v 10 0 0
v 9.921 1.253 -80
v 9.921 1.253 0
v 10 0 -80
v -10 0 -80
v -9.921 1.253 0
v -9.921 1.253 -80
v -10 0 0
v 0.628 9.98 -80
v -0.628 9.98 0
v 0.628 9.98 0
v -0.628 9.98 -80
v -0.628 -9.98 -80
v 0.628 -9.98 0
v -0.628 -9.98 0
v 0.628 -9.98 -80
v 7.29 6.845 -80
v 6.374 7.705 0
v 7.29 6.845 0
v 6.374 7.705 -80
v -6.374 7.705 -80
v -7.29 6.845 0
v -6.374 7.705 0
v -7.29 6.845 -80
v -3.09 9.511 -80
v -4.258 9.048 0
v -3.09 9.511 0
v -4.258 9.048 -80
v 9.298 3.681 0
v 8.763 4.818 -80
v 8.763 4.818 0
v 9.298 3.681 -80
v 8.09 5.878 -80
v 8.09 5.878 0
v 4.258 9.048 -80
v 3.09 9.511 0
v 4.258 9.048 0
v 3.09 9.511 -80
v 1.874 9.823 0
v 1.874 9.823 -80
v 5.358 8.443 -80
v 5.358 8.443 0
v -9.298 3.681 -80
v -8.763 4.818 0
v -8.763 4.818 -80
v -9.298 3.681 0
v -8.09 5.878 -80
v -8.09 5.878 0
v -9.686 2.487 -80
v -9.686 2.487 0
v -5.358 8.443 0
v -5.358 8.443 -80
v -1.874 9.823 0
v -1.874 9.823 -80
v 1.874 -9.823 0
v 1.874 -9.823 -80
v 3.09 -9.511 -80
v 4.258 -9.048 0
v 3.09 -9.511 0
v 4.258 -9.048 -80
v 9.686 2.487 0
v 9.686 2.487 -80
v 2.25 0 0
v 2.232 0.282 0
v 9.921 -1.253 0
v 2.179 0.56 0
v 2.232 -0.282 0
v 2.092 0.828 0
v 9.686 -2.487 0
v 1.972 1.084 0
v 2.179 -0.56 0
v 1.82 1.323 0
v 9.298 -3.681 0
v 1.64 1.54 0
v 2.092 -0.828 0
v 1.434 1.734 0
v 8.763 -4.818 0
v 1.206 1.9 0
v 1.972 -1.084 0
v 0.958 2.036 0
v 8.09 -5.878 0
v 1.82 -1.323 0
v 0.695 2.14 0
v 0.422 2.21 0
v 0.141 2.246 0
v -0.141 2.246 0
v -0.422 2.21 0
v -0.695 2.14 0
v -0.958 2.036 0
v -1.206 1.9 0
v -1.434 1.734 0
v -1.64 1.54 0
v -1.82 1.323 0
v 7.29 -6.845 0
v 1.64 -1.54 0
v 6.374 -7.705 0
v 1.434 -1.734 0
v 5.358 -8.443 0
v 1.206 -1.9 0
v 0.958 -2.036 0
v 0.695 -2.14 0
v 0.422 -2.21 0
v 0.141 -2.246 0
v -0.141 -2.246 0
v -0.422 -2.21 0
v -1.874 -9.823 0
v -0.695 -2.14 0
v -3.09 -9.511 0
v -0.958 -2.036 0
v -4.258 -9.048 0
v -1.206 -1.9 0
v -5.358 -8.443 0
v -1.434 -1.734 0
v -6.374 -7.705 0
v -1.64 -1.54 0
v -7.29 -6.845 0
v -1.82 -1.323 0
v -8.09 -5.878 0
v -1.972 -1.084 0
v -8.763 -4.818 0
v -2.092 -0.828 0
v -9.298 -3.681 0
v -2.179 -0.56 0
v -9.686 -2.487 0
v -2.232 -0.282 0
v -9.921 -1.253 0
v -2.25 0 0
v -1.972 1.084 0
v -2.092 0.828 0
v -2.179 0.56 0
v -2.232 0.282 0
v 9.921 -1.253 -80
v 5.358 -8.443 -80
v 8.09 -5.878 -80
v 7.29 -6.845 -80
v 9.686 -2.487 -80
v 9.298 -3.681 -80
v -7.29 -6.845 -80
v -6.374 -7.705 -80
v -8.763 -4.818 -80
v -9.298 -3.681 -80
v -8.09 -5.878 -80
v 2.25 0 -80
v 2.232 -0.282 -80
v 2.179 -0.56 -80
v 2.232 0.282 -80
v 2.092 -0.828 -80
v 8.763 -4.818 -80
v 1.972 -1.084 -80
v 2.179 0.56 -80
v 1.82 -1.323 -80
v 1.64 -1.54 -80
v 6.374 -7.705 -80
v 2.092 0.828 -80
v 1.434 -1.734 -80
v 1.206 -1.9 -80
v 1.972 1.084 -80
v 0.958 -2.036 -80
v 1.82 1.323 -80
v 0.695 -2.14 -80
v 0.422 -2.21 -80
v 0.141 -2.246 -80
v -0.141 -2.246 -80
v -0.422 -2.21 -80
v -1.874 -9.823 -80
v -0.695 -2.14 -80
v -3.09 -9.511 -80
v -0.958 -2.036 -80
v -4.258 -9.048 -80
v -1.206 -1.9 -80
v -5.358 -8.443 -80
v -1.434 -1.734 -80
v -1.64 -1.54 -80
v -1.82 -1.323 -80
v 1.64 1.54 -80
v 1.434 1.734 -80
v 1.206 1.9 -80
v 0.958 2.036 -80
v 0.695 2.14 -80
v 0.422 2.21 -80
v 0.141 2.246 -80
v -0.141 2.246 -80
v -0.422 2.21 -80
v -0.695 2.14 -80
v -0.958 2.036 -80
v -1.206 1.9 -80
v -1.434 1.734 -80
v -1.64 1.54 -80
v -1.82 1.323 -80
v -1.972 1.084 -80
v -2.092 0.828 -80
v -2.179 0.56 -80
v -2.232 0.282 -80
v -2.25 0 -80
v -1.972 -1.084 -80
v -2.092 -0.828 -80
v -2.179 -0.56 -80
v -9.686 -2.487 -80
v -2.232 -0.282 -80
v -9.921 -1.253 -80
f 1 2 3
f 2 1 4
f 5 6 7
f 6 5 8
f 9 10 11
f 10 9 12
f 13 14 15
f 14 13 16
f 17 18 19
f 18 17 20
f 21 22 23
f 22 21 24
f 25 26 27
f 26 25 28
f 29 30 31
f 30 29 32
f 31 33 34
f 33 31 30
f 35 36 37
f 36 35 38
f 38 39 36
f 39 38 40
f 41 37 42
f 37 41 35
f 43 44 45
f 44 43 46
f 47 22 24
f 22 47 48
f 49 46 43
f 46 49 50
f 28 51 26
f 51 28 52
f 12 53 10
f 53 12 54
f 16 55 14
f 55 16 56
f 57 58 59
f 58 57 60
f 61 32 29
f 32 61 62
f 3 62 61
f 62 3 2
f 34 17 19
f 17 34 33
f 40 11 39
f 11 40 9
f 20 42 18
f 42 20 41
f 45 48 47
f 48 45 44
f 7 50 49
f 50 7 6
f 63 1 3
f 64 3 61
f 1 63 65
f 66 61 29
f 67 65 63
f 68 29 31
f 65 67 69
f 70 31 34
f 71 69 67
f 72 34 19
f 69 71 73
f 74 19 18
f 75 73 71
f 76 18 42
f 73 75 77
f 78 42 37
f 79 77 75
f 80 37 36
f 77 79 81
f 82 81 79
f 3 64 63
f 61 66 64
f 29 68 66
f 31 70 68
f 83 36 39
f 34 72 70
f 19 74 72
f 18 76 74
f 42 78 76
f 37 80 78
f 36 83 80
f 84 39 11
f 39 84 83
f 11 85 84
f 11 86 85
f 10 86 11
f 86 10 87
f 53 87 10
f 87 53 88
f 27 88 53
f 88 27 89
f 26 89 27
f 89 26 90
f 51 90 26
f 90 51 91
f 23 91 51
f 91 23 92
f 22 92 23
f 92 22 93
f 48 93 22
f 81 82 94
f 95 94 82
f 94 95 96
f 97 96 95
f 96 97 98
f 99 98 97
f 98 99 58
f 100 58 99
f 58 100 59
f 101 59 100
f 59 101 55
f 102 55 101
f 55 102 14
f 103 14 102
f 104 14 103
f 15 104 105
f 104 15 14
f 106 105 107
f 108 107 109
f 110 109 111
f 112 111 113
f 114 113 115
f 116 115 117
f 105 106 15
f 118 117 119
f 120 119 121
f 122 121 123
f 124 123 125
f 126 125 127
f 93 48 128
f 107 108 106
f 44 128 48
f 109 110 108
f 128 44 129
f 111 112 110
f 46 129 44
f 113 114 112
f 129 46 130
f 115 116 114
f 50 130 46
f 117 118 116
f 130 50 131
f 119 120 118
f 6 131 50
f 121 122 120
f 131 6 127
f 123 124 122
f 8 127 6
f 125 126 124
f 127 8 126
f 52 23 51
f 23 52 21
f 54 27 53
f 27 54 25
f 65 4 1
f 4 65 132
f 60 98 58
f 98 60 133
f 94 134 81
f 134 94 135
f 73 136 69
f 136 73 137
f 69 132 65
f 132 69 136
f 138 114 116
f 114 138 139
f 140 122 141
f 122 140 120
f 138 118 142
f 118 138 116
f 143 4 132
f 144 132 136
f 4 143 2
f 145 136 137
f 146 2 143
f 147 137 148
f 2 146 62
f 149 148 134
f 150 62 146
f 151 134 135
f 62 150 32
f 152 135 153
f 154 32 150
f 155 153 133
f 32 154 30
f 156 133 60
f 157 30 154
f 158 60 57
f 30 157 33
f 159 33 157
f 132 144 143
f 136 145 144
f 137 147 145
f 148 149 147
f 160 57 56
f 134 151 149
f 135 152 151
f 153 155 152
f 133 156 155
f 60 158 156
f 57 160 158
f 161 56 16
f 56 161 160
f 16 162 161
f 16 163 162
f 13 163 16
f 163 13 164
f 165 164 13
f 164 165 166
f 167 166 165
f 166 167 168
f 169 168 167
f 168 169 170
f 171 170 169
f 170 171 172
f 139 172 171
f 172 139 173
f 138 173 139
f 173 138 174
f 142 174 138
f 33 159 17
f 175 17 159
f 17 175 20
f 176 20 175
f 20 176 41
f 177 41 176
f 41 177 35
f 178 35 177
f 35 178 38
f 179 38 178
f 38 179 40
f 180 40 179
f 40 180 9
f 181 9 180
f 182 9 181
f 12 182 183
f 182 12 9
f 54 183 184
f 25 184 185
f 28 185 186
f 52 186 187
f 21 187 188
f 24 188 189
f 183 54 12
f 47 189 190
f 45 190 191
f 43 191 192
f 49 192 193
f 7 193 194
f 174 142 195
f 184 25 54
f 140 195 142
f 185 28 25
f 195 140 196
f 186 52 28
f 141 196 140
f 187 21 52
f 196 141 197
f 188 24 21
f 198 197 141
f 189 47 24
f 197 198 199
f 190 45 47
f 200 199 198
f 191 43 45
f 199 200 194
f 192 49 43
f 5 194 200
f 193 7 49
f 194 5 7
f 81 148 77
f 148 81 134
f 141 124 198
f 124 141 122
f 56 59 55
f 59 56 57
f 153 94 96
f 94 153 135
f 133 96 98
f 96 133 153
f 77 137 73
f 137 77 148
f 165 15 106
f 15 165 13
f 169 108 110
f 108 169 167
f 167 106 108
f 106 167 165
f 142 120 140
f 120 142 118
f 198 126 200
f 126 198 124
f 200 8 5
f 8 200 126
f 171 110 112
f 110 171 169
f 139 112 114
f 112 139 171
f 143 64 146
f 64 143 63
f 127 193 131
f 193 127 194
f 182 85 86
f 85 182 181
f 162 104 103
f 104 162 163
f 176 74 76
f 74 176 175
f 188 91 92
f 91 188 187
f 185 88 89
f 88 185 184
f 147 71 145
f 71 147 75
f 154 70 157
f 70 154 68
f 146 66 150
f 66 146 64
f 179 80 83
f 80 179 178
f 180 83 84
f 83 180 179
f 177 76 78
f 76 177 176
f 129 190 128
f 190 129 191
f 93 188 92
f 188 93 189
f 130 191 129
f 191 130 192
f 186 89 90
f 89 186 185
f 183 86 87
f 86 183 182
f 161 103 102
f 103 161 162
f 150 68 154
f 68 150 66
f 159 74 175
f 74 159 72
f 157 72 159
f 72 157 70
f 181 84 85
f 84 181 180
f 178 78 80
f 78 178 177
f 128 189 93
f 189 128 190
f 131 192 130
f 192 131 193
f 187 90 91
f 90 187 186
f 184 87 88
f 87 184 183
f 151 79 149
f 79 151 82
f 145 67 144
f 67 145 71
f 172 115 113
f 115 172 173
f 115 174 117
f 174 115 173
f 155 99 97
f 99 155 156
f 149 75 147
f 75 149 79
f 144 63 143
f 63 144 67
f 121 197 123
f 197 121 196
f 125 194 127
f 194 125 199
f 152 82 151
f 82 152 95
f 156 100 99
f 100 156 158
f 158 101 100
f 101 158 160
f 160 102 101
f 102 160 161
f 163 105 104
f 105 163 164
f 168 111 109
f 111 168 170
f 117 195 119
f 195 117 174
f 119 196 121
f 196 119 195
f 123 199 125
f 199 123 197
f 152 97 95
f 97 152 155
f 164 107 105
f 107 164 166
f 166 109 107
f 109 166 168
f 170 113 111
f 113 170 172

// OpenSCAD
$fn = 50;


difference() {
	union() {
		translate(v = [0, 0, -80.0000000000]) {
			cylinder(h = 80, r = 10.0000000000);
		}
		cylinder(h = 0, r = 16.0000000000);
	}
	union() {
		#translate(v = [0, 0, -80]) {
			cylinder(h = 80, r = 2.2500000000);
		}
	}
}
